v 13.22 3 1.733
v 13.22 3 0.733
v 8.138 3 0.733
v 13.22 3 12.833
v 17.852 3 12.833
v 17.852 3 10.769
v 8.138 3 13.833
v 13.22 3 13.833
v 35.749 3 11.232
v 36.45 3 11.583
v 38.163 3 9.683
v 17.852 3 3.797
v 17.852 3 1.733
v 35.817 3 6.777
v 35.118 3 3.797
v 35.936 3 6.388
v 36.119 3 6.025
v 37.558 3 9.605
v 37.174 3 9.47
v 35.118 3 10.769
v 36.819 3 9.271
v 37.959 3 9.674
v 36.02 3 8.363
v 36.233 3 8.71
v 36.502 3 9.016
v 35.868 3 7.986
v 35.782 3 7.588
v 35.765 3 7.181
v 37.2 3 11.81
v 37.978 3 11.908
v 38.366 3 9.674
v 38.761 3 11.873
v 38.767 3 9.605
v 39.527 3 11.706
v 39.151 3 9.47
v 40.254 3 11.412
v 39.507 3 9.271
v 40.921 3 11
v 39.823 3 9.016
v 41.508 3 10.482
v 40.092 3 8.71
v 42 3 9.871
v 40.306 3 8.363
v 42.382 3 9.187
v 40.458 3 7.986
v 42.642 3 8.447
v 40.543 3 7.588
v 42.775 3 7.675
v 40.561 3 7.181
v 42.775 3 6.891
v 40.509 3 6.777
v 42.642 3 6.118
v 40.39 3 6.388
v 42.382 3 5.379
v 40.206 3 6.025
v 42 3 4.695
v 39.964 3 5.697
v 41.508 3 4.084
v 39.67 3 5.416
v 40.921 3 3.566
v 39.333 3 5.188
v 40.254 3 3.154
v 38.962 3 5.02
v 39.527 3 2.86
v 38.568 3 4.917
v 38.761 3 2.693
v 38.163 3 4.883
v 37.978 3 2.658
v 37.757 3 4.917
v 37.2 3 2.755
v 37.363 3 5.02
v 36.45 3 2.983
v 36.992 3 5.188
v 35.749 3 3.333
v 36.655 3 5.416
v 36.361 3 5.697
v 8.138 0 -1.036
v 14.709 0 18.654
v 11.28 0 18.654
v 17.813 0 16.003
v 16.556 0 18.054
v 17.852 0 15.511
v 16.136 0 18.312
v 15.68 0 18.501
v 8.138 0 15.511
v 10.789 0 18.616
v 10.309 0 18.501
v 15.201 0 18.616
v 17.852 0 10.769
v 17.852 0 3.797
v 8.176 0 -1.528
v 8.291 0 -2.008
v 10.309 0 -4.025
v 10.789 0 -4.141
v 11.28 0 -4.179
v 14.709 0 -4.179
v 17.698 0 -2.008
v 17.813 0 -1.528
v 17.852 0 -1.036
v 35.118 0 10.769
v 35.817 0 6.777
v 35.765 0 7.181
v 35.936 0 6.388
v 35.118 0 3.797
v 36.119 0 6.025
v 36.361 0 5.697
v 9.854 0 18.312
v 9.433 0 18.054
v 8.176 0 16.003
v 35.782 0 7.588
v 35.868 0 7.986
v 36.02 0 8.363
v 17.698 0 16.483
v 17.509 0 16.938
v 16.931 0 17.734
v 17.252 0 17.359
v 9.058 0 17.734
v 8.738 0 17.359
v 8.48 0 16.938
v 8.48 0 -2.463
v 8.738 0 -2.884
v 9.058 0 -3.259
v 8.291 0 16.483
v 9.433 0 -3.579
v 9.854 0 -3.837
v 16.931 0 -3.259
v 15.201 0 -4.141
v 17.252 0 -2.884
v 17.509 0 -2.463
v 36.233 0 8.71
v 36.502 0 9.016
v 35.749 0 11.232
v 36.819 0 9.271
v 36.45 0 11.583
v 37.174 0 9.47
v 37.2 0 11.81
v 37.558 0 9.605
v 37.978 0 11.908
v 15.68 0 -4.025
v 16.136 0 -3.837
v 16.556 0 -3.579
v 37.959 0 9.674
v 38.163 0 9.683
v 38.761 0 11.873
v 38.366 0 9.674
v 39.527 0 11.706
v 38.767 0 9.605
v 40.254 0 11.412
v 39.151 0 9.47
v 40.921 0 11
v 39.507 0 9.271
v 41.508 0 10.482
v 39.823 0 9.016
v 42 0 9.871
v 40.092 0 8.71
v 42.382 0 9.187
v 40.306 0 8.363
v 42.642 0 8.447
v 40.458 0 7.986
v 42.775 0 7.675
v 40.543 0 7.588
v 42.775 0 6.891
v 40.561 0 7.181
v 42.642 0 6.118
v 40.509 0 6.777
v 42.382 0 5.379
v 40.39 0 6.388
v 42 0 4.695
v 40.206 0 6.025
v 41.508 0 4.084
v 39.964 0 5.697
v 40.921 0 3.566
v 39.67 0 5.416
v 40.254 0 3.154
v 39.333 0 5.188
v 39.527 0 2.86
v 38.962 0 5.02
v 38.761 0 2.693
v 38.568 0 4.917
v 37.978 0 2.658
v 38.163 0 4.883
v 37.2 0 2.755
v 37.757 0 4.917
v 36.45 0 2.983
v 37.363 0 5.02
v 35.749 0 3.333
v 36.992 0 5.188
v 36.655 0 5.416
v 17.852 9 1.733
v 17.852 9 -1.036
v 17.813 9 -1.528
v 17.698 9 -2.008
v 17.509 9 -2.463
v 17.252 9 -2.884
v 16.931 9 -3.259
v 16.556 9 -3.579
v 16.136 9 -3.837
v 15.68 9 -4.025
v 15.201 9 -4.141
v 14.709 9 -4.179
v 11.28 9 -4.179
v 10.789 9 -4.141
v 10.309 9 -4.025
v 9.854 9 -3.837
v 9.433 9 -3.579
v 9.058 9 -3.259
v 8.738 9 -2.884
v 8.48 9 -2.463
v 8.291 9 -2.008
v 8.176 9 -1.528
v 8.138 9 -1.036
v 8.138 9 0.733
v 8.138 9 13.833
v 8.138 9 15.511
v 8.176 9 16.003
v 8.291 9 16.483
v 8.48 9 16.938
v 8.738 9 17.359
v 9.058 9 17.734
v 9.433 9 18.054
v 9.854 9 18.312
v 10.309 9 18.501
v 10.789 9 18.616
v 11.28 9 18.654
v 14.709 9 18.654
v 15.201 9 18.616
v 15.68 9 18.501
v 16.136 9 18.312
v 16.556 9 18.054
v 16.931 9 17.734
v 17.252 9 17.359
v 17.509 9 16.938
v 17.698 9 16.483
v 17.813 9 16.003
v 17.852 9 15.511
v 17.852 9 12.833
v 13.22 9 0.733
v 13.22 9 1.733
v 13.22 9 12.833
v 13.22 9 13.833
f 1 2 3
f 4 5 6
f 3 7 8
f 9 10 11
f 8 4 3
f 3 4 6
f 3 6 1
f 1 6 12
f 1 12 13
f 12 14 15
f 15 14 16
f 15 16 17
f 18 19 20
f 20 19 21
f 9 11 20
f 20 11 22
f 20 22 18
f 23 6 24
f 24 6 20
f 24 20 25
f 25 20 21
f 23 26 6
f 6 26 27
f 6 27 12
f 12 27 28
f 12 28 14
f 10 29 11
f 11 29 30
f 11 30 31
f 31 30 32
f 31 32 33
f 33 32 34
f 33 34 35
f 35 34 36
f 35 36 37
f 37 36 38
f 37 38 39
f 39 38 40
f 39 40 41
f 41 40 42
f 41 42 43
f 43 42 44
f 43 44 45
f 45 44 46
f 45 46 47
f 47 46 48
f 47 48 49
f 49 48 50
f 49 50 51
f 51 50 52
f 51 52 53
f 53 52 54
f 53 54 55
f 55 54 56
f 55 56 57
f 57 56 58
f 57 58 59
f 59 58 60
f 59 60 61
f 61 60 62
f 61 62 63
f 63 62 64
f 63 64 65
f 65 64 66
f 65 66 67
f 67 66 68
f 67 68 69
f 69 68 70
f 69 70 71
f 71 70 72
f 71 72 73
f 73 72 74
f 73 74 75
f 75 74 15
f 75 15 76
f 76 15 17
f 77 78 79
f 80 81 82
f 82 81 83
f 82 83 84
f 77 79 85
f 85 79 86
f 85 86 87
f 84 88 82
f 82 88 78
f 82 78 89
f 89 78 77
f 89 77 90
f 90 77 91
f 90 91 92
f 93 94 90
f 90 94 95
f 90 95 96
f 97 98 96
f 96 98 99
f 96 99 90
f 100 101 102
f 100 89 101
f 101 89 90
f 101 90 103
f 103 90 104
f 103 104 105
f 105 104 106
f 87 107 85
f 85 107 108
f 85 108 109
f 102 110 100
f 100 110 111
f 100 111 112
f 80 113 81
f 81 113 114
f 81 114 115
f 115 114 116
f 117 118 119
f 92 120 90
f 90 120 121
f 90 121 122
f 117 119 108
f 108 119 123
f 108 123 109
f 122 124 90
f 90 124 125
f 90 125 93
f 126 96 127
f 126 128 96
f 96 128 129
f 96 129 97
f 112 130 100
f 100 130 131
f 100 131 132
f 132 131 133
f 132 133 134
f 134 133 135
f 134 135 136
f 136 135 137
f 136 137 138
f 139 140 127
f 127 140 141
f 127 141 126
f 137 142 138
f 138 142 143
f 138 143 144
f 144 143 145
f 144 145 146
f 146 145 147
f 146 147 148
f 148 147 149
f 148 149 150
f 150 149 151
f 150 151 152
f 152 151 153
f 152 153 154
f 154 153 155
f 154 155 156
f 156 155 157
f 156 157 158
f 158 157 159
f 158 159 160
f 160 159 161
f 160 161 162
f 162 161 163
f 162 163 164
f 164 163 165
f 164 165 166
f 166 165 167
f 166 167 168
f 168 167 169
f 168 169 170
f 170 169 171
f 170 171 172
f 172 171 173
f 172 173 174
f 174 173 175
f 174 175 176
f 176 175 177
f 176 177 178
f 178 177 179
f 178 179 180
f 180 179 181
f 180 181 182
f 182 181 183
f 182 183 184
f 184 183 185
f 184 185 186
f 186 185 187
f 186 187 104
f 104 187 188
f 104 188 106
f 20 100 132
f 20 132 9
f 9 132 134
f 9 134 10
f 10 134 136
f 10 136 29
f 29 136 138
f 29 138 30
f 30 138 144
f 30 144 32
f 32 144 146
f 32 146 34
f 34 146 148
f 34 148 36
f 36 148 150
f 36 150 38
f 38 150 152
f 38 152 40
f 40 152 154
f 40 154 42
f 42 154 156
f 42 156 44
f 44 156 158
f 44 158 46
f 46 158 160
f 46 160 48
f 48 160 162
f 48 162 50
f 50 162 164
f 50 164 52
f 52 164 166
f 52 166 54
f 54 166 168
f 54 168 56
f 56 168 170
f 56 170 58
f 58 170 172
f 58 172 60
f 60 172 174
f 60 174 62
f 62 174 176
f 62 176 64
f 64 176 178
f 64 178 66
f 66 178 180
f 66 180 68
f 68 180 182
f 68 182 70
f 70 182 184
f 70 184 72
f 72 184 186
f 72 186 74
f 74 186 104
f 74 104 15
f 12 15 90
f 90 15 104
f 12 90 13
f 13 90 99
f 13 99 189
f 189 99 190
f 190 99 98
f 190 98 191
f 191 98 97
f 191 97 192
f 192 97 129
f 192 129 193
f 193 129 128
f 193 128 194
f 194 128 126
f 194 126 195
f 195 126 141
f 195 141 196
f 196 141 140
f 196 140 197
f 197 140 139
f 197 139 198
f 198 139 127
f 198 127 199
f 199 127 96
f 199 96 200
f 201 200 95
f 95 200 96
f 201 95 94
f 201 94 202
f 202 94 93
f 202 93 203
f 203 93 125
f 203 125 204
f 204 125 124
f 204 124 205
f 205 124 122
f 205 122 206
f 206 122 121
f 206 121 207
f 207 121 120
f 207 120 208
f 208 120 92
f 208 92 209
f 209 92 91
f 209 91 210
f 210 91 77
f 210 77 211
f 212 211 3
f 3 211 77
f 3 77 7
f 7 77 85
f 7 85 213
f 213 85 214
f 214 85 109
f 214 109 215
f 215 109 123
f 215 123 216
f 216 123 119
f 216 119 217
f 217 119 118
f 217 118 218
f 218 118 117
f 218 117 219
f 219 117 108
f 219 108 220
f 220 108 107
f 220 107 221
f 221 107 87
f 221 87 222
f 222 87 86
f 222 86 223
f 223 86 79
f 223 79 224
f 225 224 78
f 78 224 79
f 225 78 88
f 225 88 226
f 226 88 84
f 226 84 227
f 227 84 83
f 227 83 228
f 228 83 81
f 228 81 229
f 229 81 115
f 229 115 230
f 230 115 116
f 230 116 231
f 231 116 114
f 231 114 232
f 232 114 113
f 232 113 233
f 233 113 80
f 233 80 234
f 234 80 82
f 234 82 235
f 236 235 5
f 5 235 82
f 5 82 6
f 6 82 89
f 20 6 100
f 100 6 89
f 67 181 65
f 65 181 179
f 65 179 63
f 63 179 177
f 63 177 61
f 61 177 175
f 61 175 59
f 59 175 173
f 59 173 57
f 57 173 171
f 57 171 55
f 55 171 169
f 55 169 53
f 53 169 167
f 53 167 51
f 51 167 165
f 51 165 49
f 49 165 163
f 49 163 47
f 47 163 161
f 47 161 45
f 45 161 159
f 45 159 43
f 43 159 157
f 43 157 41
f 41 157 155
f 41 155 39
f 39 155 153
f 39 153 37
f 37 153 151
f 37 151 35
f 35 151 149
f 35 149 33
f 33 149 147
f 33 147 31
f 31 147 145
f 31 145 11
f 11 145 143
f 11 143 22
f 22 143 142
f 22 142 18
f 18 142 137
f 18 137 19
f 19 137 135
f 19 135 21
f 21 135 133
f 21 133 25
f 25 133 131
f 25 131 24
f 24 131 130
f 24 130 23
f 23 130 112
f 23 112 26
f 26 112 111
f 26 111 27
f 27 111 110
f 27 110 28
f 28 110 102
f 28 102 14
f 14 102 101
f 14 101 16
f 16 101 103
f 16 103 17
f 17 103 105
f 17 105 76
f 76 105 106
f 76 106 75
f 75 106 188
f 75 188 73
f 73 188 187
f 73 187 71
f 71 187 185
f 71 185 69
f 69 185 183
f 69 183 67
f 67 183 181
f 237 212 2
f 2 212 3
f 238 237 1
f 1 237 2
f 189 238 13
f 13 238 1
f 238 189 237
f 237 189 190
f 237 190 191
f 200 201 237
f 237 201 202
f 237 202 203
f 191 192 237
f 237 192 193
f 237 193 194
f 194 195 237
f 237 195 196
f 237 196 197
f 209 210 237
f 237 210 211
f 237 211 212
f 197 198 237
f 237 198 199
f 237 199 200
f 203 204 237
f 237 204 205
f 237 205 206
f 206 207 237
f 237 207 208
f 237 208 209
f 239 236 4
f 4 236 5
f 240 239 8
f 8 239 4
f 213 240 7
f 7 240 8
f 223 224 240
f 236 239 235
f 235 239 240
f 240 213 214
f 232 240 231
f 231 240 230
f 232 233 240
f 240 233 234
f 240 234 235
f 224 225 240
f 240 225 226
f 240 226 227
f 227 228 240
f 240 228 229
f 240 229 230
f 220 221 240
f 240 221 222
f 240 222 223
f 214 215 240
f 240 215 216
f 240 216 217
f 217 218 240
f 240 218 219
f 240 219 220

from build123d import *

# Parameters (mm, degrees)
CROQUIS1_R              = 2.4
SALIENTE_EXTRUIR1_DEPTH = 3
SALIENTE_EXTRUIR2_DEPTH = 6


with BuildPart() as part:
    # Croquis1 → Saliente-Extruir1 (new body)
    with BuildSketch(Plane(origin=(0, 0, 0), x_dir=(1, 0, 0), z_dir=(0, 1, 0))):
        with BuildLine():
            Line((35.117506554, -10.768616799), (17.851894103, -10.768616799))
            Line((17.851894103, -10.768616799), (17.851894103, -15.511473942))
            ThreePointArc((17.851894103, -15.511473942), (16.931372558, -17.73380954), (14.70903696, -18.654331085))
            Line((14.70903696, -18.654331085), (11.280465531, -18.654331085))
            ThreePointArc((11.280465531, -18.654331085), (9.058129933, -17.73380954), (8.137608389, -15.511473942))
            Line((8.137608389, -15.511473942), (8.137608389, 1.036415275))
            ThreePointArc((8.137608389, 1.036415275), (9.058129933, 3.258750873), (11.280465531, 4.179272418))
            Line((11.280465531, 4.179272418), (14.70903696, 4.179272418))
            ThreePointArc((14.70903696, 4.179272418), (16.931372558, 3.258750873), (17.851894103, 1.036415275))
            Line((17.851894103, 1.036415275), (17.851894103, -3.797188228))
            Line((17.851894103, -3.797188228), (35.117506554, -3.797188228))
            ThreePointArc((35.117506554, -3.797188228), (42.791315147, -7.282902513), (35.117506554, -10.768616799))
        make_face()
        with Locations(Location((38.162743718, -7.282902513, 0), (0, 0, 270))):
            Circle(CROQUIS1_R, mode=Mode.SUBTRACT)
    extrude(amount=SALIENTE_EXTRUIR1_DEPTH)

    # Croquis2 → Saliente-Extruir2 (add)
    with BuildSketch(Plane(origin=(0, 3, 0), x_dir=(1, 0, 0), z_dir=(0, 1, 0))):
        with BuildLine():
            Line((13.22040734, -0.732902513), (13.22040734, -1.732902513))
            Line((13.22040734, -1.732902513), (17.851894103, -1.732902513))
            Line((17.851894103, -1.732902513), (17.851894103, 1.036415275))
            ThreePointArc((17.851894103, 1.036415275), (16.931372558, 3.258750873), (14.70903696, 4.179272418))
            Line((14.70903696, 4.179272418), (11.280465531, 4.179272418))
            ThreePointArc((11.280465531, 4.179272418), (9.058129933, 3.258750873), (8.137608389, 1.036415275))
            Line((8.137608389, 1.036415275), (8.137608389, -0.732902513))
            Line((8.137608389, -0.732902513), (13.22040734, -0.732902513))
        make_face()
        with BuildLine():
            Line((17.851894103, -12.832902513), (13.22040734, -12.832902513))
            Line((13.22040734, -12.832902513), (13.22040734, -13.832902513))
            Line((13.22040734, -13.832902513), (8.137608389, -13.832902513))
            Line((8.137608389, -13.832902513), (8.137608389, -15.511473942))
            ThreePointArc((8.137608389, -15.511473942), (9.058129933, -17.73380954), (11.280465531, -18.654331085))
            Line((11.280465531, -18.654331085), (14.70903696, -18.654331085))
            ThreePointArc((14.70903696, -18.654331085), (16.931372558, -17.73380954), (17.851894103, -15.511473942))
            Line((17.851894103, -15.511473942), (17.851894103, -12.832902513))
        make_face()
    extrude(amount=SALIENTE_EXTRUIR2_DEPTH)


solid = part.part
